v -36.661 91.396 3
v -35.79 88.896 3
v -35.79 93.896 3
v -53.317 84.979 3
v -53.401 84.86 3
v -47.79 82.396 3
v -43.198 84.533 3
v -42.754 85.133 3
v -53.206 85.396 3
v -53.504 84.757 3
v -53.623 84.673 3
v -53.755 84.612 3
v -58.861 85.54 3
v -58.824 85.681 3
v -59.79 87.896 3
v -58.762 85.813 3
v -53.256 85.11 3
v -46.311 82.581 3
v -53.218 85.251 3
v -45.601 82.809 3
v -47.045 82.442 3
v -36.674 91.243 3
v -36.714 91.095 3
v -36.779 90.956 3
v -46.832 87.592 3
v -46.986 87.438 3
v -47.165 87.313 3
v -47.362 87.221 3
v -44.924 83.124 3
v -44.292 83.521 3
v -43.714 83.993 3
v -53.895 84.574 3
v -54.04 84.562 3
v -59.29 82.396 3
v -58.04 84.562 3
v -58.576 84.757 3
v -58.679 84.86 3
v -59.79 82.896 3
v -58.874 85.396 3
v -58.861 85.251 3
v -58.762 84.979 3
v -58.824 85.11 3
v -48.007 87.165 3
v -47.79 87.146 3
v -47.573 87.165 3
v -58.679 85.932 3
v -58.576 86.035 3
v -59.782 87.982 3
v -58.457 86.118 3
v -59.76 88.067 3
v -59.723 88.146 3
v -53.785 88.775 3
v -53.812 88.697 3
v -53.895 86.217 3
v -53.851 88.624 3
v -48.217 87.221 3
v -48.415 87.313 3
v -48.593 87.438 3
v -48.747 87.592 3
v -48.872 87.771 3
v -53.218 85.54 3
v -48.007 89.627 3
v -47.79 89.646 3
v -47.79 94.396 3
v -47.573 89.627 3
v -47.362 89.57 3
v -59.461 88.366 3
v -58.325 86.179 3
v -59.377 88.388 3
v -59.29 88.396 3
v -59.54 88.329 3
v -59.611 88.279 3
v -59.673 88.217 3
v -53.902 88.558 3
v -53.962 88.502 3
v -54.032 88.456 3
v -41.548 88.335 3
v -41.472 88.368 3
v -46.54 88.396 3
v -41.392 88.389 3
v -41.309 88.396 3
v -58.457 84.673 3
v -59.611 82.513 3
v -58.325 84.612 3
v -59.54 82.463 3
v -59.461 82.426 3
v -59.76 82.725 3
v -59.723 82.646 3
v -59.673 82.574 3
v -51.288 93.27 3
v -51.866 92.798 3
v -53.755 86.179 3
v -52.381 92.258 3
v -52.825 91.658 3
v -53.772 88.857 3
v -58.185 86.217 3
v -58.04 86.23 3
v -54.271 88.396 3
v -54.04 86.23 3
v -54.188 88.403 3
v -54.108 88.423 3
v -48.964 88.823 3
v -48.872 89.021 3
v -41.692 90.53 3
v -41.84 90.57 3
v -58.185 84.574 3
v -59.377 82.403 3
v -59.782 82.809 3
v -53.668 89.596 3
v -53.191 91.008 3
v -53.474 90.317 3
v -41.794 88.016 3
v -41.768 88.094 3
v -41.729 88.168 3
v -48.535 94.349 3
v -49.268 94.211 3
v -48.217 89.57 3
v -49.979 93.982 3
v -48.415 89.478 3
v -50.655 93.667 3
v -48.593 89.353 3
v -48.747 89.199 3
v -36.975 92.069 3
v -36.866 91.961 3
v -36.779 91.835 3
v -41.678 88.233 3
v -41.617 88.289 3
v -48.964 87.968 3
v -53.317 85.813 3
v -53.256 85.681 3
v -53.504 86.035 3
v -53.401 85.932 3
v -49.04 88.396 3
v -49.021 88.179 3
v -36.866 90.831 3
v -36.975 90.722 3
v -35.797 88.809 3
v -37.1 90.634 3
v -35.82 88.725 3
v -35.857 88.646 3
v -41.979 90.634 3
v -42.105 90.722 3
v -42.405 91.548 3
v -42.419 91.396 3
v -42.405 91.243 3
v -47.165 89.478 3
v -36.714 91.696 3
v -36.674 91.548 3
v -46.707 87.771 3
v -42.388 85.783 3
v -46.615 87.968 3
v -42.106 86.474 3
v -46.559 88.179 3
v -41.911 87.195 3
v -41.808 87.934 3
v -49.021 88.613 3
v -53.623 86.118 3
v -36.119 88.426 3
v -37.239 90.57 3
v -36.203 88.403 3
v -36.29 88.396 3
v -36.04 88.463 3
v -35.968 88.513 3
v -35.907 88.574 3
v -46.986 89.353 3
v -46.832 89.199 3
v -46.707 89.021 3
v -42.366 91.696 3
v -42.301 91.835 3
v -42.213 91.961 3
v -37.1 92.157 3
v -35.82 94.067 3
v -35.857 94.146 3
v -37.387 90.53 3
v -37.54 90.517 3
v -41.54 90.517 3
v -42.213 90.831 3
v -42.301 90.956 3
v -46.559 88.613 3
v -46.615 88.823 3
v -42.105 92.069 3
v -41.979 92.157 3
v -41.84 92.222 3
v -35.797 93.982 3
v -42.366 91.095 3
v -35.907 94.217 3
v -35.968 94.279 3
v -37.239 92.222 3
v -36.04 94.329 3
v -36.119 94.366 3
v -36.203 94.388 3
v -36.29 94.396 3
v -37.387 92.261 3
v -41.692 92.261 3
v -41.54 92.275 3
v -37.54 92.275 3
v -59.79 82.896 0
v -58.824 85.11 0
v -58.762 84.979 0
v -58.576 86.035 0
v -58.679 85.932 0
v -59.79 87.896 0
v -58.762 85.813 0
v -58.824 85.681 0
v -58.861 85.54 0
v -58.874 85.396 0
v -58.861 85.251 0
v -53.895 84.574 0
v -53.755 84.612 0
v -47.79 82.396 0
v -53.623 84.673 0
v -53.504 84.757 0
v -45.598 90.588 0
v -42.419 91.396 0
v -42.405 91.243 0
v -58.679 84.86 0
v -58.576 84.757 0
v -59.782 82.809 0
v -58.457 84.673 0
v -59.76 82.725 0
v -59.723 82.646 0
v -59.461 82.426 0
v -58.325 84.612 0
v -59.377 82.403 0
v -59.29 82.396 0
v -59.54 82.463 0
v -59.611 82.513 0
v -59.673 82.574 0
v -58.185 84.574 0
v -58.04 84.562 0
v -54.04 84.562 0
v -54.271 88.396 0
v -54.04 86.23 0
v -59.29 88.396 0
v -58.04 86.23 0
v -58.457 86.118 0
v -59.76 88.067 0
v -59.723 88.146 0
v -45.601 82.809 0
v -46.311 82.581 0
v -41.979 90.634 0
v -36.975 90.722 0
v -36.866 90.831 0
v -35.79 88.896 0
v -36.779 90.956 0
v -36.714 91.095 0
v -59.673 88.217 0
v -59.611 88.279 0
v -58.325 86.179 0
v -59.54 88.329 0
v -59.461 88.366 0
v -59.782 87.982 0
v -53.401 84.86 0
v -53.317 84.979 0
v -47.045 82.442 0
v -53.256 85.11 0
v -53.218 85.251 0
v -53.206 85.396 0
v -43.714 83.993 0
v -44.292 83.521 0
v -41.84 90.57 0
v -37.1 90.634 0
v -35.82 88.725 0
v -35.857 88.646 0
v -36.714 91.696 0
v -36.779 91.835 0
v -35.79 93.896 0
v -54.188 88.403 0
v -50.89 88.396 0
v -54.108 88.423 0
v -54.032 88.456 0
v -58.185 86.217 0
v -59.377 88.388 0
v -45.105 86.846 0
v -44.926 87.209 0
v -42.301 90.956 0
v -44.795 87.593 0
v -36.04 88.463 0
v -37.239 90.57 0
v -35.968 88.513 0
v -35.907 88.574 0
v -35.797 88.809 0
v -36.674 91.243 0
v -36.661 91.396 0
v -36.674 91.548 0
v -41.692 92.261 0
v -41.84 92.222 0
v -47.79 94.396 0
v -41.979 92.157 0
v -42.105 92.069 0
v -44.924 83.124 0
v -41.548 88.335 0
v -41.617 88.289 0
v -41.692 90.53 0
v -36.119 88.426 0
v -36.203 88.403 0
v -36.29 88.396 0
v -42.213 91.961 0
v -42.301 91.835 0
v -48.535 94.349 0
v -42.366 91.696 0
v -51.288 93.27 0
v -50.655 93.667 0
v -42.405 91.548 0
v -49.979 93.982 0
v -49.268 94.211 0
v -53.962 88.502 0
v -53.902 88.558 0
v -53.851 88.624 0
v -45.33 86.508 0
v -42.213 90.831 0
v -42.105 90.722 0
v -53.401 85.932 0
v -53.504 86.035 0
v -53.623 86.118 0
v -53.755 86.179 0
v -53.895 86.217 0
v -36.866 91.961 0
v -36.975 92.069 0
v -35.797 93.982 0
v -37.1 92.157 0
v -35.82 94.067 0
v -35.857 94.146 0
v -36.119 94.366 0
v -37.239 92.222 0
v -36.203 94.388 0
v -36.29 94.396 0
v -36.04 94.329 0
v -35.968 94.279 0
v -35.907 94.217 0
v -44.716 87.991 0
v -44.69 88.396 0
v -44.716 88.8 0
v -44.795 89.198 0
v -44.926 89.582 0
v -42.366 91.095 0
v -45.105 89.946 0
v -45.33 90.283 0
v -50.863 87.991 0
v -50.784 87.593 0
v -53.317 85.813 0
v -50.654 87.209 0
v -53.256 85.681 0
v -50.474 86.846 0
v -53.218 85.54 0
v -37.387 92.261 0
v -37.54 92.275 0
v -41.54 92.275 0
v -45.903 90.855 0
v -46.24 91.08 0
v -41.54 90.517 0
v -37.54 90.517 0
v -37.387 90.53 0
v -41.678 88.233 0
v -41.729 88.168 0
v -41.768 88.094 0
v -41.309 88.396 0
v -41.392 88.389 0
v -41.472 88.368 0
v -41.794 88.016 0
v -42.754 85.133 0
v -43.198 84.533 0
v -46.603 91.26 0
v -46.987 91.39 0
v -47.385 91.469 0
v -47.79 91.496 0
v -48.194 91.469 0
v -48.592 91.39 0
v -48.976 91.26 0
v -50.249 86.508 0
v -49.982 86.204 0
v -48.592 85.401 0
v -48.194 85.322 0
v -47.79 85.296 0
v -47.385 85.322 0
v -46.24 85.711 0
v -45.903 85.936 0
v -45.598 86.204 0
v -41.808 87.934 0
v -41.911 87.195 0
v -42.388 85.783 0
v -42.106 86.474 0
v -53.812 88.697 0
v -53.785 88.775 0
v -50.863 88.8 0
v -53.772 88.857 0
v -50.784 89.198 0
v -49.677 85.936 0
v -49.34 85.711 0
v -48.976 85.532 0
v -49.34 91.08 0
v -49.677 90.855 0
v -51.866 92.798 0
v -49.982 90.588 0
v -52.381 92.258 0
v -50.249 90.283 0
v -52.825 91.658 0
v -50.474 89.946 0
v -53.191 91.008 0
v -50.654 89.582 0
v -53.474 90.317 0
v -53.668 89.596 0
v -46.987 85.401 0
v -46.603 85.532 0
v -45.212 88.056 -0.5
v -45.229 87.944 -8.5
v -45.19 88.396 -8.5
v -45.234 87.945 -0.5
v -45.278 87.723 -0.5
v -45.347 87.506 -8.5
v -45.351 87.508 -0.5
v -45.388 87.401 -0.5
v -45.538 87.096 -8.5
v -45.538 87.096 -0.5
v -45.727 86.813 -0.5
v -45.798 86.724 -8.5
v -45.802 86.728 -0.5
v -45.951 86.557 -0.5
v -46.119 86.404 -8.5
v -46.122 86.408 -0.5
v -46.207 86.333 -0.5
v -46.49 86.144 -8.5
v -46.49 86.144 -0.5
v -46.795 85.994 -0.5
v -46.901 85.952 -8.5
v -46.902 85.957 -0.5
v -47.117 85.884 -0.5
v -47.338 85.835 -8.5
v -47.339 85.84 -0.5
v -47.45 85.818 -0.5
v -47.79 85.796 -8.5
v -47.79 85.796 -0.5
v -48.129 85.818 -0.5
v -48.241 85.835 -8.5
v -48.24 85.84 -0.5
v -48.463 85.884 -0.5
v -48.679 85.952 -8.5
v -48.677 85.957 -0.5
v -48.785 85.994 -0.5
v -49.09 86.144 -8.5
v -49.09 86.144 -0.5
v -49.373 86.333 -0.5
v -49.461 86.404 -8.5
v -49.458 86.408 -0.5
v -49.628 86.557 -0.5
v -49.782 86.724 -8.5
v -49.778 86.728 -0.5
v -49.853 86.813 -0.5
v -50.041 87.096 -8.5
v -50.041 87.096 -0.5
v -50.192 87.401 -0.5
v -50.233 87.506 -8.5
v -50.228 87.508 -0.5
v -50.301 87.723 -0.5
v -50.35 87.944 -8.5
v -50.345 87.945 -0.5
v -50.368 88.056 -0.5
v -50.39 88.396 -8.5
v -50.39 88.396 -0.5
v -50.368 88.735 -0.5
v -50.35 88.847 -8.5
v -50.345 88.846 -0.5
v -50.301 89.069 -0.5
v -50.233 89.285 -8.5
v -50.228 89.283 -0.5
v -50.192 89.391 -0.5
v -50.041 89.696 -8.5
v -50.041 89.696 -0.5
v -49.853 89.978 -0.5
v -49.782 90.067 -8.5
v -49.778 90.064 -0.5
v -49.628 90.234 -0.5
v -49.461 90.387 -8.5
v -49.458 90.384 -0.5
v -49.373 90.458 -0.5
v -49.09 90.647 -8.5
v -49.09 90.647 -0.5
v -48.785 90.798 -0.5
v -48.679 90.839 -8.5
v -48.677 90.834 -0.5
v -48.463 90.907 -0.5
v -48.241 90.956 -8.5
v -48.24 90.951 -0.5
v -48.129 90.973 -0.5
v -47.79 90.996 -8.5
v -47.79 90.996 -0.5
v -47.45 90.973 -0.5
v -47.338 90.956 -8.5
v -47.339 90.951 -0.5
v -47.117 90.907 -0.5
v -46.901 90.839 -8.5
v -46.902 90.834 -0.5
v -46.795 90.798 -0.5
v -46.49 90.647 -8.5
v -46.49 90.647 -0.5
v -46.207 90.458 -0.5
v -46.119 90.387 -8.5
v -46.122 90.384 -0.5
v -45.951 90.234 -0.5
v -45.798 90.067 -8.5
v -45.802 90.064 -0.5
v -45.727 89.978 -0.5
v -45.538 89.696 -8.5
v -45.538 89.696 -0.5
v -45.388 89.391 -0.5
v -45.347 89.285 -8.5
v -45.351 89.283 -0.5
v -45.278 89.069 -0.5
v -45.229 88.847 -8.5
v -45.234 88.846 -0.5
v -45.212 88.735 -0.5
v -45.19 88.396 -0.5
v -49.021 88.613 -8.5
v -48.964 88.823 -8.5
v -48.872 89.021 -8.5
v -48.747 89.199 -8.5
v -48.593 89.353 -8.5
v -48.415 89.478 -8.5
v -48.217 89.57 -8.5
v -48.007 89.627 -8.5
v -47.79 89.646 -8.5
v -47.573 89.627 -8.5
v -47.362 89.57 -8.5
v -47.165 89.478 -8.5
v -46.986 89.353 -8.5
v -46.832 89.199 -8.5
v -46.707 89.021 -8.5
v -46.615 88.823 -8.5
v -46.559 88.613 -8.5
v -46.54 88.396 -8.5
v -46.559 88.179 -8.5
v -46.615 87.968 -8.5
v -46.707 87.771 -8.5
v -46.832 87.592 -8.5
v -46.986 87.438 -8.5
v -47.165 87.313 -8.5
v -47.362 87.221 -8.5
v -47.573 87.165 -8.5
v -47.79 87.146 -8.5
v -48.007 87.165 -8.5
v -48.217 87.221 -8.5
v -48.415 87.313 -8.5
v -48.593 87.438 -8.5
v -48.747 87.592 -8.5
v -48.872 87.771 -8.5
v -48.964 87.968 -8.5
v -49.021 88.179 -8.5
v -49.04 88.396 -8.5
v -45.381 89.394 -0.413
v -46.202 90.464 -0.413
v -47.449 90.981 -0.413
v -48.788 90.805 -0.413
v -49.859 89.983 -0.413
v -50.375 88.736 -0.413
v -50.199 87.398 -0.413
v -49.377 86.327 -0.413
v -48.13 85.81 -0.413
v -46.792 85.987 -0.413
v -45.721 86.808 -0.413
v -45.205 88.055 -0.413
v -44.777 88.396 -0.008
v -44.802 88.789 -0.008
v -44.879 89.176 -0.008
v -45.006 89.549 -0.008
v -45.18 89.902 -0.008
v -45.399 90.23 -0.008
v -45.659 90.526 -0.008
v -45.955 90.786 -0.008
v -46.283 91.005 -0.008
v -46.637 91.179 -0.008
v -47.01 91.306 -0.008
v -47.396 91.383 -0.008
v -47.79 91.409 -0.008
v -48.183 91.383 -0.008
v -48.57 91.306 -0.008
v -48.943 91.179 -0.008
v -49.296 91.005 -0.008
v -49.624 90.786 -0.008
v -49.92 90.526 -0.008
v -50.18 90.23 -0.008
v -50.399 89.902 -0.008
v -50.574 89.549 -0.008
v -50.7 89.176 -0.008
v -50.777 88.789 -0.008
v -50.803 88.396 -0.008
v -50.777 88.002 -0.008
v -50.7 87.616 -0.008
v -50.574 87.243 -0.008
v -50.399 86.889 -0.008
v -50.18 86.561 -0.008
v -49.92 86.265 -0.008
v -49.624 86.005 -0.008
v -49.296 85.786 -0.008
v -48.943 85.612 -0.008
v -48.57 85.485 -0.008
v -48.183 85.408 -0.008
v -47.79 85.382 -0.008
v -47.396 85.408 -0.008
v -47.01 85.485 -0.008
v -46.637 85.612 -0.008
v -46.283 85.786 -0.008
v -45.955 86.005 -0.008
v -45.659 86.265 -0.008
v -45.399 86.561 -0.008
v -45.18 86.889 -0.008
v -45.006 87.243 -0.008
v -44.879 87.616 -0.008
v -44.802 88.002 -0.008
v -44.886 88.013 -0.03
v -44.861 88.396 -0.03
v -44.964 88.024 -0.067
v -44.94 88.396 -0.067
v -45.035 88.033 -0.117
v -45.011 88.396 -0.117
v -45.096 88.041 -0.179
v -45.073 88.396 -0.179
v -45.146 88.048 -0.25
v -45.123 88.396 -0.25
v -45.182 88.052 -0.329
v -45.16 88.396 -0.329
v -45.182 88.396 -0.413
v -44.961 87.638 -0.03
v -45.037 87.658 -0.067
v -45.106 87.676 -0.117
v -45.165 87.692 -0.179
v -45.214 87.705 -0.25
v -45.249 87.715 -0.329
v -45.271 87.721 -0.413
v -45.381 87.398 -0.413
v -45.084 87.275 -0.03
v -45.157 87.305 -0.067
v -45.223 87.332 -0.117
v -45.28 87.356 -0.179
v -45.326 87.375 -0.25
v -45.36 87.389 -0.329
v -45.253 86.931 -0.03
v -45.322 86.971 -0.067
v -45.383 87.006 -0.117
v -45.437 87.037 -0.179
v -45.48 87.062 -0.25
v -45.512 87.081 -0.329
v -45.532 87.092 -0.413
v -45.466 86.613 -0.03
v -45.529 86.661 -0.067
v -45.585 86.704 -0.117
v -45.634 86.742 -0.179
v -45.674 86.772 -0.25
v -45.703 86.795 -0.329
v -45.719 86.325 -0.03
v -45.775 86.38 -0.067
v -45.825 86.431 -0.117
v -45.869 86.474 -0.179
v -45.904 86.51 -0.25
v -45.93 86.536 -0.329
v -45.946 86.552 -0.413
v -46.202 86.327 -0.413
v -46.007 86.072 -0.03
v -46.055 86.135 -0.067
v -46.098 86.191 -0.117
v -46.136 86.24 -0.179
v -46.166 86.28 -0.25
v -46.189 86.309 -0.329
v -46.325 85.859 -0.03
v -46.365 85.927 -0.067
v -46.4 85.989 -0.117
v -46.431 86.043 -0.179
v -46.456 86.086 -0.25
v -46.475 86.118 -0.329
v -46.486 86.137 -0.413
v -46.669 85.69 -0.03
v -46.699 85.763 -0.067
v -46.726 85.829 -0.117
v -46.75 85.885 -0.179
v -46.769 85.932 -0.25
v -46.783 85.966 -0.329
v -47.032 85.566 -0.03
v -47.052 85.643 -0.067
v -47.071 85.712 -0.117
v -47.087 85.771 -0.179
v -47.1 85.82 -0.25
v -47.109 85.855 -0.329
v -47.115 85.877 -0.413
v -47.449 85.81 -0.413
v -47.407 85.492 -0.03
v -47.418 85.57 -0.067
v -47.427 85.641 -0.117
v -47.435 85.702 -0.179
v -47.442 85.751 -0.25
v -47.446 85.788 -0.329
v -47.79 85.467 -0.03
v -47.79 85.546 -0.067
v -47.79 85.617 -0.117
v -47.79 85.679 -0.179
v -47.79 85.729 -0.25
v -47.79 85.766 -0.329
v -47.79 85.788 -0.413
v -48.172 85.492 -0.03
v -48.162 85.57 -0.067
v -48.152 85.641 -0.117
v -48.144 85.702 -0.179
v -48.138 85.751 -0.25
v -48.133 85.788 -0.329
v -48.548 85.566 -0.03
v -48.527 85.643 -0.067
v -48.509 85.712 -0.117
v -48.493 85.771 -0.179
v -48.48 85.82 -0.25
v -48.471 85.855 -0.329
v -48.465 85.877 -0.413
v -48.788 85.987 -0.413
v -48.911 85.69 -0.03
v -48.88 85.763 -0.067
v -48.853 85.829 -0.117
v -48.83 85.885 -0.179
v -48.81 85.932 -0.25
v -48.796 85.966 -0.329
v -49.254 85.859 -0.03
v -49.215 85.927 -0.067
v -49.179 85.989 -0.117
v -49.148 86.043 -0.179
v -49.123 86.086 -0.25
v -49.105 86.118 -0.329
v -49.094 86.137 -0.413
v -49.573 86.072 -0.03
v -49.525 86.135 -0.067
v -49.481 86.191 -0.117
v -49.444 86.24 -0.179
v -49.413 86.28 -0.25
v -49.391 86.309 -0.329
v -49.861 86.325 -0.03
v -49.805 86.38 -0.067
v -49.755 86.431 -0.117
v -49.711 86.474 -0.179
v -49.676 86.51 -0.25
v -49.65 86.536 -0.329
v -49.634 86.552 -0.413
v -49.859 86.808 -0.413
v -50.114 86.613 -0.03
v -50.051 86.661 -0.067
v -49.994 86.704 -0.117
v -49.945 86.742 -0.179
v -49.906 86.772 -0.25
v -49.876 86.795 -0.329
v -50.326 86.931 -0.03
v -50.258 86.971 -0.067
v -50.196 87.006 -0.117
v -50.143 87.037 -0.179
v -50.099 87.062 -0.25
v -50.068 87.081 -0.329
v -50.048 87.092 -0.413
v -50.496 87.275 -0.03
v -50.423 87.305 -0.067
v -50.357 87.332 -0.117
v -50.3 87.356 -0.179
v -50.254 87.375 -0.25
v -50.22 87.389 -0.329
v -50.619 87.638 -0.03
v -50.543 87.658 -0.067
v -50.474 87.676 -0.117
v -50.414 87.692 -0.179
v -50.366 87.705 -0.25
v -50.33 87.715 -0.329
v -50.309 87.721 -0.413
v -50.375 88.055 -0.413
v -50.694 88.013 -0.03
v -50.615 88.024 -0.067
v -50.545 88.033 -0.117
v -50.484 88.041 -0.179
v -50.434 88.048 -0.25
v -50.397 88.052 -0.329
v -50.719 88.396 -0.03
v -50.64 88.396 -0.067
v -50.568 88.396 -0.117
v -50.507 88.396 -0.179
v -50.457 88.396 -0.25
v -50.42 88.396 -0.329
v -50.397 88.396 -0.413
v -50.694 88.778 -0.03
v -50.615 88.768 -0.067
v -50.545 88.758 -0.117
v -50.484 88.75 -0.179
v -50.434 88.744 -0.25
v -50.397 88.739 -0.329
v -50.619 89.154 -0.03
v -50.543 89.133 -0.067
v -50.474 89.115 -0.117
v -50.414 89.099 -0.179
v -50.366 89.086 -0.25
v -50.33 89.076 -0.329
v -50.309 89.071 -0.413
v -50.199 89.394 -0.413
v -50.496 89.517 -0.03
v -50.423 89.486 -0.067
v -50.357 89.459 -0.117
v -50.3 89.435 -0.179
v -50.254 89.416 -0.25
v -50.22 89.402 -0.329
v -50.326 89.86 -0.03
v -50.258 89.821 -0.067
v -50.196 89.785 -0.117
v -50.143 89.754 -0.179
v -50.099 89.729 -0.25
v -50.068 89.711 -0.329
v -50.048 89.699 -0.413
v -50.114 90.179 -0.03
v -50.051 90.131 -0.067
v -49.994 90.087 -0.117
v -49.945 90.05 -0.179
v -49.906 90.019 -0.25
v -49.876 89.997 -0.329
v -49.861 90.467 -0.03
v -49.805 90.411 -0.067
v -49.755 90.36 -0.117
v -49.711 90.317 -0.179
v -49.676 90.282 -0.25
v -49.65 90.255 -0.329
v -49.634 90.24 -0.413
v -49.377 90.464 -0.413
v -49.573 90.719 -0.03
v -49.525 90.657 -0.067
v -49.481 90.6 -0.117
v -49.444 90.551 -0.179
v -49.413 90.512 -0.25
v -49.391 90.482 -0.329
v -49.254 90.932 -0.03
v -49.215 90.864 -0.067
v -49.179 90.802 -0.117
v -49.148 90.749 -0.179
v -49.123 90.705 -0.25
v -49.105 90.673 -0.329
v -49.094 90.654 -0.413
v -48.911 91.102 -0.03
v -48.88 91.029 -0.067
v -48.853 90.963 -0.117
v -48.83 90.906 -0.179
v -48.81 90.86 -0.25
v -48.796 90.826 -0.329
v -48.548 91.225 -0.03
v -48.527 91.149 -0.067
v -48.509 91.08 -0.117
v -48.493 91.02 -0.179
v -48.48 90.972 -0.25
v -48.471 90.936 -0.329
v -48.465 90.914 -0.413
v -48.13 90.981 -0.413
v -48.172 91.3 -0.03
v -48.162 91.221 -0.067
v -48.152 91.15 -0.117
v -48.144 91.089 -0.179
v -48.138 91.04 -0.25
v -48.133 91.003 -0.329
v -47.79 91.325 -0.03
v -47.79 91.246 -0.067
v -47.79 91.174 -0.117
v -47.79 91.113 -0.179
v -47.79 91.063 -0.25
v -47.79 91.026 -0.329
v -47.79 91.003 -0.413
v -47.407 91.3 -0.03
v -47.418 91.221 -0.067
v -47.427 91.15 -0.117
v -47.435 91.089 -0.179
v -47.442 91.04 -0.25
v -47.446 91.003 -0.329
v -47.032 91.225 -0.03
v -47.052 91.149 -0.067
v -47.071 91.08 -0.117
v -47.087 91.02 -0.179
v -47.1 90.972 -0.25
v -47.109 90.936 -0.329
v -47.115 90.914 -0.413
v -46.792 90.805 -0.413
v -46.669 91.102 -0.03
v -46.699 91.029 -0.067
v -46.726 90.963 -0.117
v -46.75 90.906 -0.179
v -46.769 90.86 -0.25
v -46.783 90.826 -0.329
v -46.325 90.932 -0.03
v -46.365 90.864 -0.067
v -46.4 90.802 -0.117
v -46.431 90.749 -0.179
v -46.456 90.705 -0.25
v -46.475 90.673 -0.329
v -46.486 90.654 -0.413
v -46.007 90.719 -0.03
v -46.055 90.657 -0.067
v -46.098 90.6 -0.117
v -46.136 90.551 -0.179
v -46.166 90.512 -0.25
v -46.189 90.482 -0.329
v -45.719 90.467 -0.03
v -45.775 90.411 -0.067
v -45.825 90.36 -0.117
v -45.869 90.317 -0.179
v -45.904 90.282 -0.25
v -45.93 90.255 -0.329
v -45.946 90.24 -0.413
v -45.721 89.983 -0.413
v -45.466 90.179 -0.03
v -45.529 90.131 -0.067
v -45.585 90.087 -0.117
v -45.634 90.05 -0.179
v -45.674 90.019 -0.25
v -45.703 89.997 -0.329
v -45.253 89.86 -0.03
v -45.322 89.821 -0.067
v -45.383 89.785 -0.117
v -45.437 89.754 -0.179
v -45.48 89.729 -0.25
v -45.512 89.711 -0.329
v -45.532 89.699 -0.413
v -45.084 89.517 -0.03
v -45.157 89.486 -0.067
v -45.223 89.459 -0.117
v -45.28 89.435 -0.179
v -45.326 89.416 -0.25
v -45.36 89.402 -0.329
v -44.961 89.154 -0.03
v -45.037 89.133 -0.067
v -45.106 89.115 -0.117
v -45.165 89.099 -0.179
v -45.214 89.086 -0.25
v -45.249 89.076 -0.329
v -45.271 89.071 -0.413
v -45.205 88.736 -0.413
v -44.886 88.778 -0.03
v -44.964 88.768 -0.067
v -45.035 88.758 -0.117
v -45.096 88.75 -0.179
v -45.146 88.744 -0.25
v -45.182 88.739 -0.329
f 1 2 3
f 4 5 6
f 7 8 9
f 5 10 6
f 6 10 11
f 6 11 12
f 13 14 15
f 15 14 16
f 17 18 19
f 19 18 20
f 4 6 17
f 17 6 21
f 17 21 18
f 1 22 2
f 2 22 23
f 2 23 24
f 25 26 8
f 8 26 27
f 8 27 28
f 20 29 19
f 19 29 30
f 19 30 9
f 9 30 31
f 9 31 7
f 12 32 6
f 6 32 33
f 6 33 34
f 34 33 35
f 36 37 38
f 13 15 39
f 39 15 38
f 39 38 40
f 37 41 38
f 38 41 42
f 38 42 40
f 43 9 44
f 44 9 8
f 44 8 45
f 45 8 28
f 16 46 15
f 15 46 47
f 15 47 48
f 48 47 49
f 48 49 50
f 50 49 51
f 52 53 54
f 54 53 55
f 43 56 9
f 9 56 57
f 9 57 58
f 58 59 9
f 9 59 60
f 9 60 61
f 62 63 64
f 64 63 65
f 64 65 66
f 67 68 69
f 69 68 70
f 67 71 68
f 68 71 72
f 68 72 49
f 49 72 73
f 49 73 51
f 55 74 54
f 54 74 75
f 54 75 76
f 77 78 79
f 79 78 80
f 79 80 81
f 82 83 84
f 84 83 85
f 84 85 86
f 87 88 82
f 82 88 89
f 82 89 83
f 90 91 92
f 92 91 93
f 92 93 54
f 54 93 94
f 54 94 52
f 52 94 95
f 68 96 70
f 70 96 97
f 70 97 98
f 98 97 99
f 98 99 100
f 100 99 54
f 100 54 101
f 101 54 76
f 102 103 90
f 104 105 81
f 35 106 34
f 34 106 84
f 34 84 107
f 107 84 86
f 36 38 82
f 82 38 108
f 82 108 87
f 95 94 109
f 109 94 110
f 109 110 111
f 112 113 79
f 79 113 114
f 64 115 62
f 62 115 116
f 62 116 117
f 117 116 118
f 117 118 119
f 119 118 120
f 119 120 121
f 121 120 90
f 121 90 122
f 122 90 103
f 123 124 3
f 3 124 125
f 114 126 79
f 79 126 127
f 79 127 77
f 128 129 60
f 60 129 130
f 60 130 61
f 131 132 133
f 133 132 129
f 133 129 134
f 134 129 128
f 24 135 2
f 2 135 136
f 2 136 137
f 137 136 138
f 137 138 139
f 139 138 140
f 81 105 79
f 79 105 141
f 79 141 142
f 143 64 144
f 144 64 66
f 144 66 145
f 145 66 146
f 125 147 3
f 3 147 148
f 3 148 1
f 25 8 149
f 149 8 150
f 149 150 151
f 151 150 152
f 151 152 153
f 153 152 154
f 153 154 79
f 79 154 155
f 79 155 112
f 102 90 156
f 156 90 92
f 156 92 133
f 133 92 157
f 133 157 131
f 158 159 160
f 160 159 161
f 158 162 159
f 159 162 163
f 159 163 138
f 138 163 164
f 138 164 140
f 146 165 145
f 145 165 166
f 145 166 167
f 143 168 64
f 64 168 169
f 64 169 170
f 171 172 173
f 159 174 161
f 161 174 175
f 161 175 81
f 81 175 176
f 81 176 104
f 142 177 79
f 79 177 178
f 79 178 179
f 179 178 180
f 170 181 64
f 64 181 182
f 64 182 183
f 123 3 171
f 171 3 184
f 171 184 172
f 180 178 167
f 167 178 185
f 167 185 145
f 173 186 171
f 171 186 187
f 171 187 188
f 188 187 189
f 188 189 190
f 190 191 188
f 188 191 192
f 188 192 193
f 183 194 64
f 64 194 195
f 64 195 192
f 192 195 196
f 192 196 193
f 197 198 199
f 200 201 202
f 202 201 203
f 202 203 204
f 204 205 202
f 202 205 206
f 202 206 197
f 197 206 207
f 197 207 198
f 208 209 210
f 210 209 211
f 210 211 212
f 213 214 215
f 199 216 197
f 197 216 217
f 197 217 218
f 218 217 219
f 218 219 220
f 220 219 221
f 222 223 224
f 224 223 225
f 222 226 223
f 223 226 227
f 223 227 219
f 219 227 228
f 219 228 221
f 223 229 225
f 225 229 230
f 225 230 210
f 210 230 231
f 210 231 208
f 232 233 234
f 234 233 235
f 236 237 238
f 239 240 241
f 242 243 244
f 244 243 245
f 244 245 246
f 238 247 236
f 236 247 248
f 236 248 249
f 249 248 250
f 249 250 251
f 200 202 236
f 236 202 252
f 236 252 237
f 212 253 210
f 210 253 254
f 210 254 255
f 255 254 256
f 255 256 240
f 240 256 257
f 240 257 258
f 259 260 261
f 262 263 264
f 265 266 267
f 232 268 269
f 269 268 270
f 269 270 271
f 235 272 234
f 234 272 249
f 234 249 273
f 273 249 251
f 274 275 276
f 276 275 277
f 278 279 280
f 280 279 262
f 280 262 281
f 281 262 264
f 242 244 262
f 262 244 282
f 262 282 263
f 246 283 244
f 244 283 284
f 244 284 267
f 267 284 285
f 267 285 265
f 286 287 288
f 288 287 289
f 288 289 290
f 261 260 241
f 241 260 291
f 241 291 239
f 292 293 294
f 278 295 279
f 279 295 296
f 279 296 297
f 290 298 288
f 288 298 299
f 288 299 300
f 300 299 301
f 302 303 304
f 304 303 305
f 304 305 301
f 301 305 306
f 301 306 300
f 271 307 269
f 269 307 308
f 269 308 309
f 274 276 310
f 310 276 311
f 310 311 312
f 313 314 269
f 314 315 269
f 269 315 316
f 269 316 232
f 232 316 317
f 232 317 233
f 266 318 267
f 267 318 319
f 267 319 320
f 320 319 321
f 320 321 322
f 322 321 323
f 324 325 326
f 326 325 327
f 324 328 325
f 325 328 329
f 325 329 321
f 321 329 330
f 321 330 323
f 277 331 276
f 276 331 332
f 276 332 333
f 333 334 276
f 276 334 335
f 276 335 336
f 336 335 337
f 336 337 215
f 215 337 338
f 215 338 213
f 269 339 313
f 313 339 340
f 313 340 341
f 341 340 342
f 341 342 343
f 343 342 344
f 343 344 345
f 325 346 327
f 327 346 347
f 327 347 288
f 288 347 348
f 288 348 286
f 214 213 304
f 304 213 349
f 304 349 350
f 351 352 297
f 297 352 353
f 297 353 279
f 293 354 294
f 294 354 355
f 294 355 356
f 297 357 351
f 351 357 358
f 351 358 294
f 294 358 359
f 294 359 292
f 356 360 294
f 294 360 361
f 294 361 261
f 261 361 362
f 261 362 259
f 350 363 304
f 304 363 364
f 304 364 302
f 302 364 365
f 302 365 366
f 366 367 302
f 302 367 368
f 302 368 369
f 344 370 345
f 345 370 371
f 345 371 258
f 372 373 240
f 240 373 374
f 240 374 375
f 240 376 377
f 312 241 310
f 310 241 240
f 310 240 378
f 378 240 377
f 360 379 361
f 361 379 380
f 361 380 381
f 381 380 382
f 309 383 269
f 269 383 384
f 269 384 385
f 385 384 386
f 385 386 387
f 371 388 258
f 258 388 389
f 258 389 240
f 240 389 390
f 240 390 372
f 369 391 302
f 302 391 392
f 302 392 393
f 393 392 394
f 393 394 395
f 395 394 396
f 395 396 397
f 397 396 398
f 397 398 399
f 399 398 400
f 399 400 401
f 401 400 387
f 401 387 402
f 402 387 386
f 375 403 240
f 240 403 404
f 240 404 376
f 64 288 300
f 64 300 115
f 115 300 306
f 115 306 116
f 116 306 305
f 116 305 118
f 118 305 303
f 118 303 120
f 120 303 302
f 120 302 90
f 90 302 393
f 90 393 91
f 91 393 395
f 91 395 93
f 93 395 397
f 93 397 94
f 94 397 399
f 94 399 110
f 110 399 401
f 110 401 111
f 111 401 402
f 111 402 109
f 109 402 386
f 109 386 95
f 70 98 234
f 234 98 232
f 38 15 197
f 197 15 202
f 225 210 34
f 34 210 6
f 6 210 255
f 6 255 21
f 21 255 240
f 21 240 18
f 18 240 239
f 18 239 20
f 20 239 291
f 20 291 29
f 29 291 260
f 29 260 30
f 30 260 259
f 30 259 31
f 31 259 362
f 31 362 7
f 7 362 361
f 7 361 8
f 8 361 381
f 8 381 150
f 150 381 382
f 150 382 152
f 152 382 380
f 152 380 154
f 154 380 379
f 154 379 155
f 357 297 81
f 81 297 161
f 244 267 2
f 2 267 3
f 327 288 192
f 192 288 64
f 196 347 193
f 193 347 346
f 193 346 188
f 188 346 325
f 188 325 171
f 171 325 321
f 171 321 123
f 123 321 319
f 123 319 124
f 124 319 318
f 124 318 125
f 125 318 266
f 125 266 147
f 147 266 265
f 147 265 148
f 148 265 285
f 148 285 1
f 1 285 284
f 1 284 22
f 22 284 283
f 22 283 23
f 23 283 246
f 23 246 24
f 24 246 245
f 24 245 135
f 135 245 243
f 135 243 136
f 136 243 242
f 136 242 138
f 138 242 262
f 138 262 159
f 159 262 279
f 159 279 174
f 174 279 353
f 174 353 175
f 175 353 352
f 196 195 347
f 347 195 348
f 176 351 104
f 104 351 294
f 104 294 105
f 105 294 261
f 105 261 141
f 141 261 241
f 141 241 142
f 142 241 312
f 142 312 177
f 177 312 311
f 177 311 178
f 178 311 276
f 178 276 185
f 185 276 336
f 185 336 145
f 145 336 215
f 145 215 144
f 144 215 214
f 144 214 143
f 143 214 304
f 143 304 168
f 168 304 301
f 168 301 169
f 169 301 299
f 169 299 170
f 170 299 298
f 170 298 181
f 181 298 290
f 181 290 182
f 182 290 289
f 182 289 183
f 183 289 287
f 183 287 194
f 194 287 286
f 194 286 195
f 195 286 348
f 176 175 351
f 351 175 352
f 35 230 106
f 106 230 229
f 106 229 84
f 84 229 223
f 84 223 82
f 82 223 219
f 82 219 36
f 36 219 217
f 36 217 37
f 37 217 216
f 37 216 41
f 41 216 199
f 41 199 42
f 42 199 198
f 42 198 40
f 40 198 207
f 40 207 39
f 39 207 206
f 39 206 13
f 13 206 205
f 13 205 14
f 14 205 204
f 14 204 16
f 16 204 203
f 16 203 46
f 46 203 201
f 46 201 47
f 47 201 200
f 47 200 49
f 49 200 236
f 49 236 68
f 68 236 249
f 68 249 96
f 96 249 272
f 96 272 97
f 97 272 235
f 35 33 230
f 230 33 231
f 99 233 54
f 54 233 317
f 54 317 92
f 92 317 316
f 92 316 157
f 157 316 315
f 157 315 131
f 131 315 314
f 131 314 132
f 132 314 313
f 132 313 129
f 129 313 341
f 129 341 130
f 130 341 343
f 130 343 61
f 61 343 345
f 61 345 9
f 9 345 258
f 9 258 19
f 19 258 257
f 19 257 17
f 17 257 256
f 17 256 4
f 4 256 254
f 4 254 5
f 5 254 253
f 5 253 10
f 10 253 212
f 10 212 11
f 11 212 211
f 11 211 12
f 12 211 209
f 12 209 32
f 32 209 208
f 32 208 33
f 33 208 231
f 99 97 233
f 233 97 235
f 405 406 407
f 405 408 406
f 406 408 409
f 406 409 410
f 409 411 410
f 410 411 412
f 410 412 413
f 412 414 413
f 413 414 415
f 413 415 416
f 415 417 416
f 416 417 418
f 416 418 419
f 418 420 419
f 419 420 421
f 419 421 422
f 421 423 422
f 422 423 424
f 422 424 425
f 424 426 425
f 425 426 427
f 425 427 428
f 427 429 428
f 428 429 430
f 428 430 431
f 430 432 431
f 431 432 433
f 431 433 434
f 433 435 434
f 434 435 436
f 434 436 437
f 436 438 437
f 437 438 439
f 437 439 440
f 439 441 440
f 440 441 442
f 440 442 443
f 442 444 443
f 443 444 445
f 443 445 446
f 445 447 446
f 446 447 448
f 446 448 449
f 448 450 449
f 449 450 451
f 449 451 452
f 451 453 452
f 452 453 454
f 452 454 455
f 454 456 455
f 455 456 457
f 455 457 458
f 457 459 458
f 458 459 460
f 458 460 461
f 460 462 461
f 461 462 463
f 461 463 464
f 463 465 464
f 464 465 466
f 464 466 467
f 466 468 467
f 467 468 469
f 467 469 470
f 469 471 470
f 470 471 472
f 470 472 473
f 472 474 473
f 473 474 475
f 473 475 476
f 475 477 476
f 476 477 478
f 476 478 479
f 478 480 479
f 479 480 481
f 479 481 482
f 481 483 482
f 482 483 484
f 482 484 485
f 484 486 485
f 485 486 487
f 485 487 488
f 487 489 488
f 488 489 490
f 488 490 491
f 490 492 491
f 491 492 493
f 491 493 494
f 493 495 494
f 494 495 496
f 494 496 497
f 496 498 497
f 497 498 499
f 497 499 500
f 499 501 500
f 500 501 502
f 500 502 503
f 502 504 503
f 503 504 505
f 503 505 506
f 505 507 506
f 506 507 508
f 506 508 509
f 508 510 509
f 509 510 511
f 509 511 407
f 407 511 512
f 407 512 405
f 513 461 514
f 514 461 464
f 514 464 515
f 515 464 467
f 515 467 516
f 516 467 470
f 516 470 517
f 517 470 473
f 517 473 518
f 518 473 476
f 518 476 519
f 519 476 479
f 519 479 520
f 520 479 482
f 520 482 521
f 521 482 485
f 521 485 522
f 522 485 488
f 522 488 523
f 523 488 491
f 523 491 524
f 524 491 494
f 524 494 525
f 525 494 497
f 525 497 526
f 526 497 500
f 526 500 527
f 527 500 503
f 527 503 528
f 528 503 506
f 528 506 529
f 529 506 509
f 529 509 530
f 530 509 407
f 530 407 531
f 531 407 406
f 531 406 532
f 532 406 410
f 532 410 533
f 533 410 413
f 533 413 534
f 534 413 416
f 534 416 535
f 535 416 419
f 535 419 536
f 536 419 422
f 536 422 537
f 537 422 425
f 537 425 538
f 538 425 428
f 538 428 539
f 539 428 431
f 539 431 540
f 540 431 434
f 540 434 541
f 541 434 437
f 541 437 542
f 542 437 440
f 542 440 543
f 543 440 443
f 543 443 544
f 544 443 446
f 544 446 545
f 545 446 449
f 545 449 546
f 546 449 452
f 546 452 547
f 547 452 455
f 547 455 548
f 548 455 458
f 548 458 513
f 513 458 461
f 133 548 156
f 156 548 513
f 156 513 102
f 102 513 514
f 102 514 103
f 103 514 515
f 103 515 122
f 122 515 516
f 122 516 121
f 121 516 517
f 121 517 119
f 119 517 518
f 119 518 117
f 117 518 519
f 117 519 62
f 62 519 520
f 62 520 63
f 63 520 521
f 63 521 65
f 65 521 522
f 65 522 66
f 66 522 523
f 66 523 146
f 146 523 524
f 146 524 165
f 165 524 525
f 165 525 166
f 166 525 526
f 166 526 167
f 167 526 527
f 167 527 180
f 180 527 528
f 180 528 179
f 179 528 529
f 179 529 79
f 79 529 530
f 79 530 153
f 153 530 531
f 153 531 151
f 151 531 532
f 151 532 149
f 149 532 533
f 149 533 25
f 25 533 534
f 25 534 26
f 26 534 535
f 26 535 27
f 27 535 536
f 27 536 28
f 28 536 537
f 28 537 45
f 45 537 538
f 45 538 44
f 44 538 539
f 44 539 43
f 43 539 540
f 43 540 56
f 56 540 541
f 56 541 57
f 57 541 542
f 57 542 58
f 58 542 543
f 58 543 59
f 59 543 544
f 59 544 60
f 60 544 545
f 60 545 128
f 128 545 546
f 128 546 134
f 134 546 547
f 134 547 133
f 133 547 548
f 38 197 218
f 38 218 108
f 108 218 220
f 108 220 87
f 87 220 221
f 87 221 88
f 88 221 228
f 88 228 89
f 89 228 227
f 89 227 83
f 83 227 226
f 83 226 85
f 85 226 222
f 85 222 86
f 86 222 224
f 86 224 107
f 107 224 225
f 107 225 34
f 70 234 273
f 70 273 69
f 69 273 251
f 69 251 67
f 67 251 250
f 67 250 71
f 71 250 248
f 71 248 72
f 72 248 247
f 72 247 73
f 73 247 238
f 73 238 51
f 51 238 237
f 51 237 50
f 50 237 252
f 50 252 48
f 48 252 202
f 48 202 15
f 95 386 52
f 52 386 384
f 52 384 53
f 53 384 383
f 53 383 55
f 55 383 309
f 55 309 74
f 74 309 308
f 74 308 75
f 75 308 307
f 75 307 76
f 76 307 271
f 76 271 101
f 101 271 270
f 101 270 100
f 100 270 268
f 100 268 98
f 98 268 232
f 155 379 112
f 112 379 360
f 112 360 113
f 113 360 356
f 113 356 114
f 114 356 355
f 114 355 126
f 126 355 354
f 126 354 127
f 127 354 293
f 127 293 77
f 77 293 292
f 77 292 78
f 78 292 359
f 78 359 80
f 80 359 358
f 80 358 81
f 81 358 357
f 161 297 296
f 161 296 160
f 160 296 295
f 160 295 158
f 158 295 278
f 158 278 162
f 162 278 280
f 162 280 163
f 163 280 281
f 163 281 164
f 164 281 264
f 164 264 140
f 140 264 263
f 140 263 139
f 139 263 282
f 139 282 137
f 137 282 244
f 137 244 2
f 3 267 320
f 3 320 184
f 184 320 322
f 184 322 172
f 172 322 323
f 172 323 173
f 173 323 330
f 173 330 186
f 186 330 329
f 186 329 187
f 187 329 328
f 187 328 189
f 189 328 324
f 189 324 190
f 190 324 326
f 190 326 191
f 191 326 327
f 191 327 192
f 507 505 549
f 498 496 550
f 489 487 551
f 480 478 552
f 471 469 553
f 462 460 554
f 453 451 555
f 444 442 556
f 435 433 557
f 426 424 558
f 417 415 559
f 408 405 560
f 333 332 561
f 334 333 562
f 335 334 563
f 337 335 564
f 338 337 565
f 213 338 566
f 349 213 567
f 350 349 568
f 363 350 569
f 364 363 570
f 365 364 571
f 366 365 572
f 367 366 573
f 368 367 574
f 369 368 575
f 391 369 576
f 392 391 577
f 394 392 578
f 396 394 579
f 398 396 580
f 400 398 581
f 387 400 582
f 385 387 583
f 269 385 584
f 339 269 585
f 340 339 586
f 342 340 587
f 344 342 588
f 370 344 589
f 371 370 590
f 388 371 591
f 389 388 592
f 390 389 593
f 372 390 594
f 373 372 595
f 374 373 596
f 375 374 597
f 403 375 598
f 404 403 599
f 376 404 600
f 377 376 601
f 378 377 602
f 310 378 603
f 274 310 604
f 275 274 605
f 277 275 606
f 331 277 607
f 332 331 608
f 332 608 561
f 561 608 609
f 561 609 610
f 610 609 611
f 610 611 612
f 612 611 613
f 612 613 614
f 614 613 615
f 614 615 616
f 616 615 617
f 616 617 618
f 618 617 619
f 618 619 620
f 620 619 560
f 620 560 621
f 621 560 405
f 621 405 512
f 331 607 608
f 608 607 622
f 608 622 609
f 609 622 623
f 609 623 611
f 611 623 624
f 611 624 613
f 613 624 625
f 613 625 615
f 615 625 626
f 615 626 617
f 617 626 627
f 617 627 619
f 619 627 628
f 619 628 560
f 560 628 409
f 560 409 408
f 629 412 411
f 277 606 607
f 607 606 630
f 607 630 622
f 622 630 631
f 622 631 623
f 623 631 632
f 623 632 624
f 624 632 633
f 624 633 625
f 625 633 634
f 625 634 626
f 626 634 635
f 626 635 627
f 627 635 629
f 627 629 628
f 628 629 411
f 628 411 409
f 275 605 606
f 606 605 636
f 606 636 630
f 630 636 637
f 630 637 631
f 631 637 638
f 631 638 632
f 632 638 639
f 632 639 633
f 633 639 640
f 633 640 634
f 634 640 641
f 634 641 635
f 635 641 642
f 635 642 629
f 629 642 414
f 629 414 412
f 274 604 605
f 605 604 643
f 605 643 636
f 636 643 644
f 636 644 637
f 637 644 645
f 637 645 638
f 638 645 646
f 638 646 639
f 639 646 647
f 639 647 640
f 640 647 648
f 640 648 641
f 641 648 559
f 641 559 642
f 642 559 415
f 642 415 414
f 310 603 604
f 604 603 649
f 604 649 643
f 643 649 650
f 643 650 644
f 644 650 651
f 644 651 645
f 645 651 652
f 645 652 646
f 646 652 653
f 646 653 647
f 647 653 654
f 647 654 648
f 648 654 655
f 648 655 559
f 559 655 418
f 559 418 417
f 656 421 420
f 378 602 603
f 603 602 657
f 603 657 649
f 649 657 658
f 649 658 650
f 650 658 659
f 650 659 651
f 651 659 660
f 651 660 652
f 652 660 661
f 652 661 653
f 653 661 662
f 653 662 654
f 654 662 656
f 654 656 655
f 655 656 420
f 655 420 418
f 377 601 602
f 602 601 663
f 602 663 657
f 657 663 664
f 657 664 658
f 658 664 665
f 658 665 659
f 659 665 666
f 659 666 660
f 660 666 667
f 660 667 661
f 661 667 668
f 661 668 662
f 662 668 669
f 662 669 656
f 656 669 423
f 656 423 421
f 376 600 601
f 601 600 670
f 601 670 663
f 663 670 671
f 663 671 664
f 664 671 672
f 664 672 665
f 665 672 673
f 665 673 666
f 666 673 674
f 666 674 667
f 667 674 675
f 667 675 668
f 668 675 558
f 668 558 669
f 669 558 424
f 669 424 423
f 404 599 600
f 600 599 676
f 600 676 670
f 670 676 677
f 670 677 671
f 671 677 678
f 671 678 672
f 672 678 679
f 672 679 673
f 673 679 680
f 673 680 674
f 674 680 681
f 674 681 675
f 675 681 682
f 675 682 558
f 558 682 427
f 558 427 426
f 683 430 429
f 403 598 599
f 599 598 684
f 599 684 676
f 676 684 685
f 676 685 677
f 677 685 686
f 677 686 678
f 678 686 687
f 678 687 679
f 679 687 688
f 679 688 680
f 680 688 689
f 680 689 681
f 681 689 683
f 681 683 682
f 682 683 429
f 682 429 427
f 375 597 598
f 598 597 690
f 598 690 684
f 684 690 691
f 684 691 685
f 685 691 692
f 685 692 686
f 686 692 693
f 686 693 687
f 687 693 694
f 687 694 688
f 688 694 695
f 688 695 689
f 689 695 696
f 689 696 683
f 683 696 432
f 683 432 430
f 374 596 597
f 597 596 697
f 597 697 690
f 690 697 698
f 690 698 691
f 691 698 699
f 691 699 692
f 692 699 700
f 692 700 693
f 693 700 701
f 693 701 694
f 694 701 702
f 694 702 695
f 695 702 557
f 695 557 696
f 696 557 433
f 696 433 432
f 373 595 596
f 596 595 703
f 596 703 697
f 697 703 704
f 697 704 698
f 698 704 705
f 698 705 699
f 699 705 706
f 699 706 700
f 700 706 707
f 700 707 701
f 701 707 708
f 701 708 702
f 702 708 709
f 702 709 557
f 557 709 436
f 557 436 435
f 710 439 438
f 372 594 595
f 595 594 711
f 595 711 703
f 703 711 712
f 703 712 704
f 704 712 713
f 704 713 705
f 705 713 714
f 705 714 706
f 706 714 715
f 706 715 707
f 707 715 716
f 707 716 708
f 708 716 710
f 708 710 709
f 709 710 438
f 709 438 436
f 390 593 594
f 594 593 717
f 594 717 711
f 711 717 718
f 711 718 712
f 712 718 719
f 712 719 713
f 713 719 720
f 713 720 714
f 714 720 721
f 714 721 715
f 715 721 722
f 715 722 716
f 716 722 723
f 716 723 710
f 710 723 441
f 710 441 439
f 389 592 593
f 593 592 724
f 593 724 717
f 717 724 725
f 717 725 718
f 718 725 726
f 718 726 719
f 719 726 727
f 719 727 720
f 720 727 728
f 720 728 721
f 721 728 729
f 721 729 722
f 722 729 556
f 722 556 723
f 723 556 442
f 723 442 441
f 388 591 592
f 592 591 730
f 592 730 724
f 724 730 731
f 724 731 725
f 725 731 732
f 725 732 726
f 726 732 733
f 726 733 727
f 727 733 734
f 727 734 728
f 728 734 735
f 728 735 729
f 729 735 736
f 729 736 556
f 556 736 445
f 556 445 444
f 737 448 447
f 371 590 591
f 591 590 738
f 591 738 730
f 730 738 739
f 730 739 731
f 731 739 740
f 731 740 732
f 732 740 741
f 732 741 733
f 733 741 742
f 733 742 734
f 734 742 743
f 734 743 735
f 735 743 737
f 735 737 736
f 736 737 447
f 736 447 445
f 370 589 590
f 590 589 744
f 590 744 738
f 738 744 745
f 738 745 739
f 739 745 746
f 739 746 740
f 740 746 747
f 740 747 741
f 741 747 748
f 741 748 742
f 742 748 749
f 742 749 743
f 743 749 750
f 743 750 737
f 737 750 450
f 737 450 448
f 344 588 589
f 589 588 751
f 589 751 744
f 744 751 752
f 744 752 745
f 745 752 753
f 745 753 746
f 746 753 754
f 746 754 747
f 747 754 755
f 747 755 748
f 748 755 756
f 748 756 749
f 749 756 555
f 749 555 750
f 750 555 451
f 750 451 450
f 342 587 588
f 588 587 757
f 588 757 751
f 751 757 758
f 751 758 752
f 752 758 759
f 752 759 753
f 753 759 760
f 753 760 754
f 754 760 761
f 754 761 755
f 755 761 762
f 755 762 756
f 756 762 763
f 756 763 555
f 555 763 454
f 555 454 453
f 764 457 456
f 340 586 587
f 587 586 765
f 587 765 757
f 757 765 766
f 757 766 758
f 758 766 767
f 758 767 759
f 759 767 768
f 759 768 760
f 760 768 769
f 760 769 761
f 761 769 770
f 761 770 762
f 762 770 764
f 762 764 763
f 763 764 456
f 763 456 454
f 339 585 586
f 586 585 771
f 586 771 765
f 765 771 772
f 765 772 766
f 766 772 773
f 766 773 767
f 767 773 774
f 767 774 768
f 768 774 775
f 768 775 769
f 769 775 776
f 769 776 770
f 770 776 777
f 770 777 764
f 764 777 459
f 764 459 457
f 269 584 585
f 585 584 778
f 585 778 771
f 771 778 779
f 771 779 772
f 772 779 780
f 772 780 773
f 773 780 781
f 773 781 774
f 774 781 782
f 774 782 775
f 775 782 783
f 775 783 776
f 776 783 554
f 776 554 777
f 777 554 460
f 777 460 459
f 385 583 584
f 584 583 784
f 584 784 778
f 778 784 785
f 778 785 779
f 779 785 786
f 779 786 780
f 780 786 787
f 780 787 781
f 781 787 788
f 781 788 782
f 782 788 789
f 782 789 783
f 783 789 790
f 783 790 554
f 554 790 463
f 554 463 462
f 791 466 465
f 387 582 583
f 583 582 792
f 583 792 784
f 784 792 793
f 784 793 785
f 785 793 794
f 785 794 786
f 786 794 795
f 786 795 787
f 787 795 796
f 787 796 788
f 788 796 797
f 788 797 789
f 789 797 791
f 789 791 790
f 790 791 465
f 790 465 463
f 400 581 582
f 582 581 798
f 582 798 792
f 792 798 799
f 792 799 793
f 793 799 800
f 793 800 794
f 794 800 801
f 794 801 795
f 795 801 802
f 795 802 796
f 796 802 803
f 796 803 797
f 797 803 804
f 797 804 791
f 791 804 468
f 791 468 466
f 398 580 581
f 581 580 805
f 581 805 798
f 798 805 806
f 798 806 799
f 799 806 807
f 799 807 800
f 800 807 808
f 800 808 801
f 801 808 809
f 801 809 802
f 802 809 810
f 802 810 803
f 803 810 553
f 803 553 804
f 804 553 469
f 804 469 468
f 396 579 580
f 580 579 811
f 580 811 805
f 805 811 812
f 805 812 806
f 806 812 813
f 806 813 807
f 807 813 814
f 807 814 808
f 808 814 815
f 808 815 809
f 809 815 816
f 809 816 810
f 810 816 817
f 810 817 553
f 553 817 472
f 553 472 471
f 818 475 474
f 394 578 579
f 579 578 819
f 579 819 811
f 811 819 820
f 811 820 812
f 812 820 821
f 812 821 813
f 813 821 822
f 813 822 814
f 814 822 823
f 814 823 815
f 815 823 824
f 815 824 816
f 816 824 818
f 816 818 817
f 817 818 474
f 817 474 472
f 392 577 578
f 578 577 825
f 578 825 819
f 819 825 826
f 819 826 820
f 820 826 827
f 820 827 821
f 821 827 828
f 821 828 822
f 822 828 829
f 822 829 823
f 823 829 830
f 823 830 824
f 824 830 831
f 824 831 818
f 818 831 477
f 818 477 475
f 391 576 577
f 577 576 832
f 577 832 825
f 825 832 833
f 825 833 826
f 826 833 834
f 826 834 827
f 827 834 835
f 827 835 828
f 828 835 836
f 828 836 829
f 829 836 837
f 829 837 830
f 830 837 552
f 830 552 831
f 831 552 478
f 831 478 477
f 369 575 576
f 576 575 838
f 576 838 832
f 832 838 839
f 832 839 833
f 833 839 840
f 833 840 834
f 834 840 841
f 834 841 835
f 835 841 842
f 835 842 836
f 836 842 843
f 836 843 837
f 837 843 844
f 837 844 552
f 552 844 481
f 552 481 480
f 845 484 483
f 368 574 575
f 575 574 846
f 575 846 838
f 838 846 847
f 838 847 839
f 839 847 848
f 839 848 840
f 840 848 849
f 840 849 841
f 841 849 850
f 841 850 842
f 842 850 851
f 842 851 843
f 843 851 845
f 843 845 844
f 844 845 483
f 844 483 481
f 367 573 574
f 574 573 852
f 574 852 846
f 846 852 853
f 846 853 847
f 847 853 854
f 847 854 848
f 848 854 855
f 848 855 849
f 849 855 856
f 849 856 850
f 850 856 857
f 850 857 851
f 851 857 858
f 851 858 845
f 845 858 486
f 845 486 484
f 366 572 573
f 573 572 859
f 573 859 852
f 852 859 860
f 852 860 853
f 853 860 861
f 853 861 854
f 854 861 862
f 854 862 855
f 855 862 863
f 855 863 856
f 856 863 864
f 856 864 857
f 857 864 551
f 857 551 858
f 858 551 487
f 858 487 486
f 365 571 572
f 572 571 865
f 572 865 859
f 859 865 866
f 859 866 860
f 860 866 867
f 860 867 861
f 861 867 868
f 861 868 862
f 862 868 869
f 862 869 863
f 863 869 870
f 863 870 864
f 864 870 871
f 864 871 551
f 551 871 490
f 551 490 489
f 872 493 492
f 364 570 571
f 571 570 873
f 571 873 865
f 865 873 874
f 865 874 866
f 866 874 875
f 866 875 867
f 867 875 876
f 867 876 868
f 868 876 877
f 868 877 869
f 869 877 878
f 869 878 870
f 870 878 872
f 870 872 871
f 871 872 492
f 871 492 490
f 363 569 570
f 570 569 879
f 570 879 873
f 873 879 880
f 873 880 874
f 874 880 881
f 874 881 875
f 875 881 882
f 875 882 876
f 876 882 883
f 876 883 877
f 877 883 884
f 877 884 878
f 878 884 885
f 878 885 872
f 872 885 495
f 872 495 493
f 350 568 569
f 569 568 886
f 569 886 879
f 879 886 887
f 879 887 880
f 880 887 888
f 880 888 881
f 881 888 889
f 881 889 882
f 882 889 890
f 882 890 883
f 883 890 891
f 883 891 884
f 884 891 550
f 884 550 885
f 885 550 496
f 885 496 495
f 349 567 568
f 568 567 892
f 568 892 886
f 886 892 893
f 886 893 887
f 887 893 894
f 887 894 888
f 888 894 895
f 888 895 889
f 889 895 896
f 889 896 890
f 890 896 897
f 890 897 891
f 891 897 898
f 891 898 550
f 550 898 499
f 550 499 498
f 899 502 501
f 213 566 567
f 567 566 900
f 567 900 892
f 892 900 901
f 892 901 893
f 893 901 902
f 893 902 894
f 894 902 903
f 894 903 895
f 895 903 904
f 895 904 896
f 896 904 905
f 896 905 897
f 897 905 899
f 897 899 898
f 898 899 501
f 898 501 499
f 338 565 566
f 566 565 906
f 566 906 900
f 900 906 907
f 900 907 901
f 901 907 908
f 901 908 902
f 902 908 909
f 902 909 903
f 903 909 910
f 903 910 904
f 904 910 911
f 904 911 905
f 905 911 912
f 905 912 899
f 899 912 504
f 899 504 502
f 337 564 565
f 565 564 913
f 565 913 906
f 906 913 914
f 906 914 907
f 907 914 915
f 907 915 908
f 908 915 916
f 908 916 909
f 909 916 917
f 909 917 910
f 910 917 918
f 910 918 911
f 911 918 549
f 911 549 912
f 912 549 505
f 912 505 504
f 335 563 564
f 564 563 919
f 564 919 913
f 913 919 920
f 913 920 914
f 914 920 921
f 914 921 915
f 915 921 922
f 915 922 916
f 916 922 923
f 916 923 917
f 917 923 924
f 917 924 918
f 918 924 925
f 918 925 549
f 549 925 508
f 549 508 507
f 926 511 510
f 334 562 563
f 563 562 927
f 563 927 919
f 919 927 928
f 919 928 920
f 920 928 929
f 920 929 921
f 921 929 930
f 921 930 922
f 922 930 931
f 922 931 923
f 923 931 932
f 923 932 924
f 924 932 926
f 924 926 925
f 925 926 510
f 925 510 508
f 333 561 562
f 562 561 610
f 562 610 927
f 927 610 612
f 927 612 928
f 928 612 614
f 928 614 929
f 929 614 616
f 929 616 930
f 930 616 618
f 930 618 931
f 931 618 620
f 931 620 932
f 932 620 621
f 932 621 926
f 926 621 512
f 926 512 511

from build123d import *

# Parameters (mm, degrees)
BOSS_EXTRUDE1_DEPTH = 3
SKETCH2_R           = 2.6
BOSS_EXTRUDE2_DEPTH = 8.5
M3_TAPPED_HOLE1_D   = 2.5
FILLET1_R           = 0.5


with BuildPart() as part:
    # Sketch1 → Boss-Extrude1 (new body)
    with BuildSketch(Plane.XY):
        with BuildLine():
            Line((-47.789798407, 94.395653496), (-35.789798407, 94.395653496))
            Line((-35.789798407, 94.395653496), (-35.789798407, 88.395653496))
            Line((-35.789798407, 88.395653496), (-41.789798407, 88.395653496))
            ThreePointArc((-41.789798407, 88.395653496), (-43.54715772, 84.153012809), (-47.789798407, 82.395653496))
            Line((-47.789798407, 82.395653496), (-59.789798407, 82.395653496))
            Line((-59.789798407, 82.395653496), (-59.789798407, 88.395653496))
            Line((-59.789798407, 88.395653496), (-53.789798407, 88.395653496))
            ThreePointArc((-53.789798407, 88.395653496), (-52.032439094, 92.638294183), (-47.789798407, 94.395653496))
        make_face()
        with BuildLine():
            Line((-37.539798407, 90.516657199), (-41.539798407, 90.516657199))
            ThreePointArc((-41.539798407, 90.516657199), (-42.418794704, 91.395653496), (-41.539798407, 92.274649793))
            Line((-41.539798407, 92.274649793), (-37.539798407, 92.274649793))
            ThreePointArc((-37.539798407, 92.274649793), (-36.66080211, 91.395653496), (-37.539798407, 90.516657199))
        make_face(mode=Mode.SUBTRACT)
        with BuildLine():
            Line((-58.039798407, 86.229692735), (-54.039798407, 86.229692735))
            ThreePointArc((-54.039798407, 86.229692735), (-53.205759169, 85.395653496), (-54.039798407, 84.561614258))
            Line((-54.039798407, 84.561614258), (-58.039798407, 84.561614258))
            ThreePointArc((-58.039798407, 84.561614258), (-58.873837646, 85.395653496), (-58.039798407, 86.229692735))
        make_face(mode=Mode.SUBTRACT)
    extrude(amount=BOSS_EXTRUDE1_DEPTH)

    # Sketch2 → Boss-Extrude2 (add)
    with BuildSketch(Plane(origin=(0, 0, 0), x_dir=(-1, 0, 0), z_dir=(0, 0, -1))):
        with Locations(Location((47.789798407, 88.395653496, 0), (0, 0, 180))):
            Circle(SKETCH2_R)
    extrude(amount=BOSS_EXTRUDE2_DEPTH)

    # M3 Tapped Hole1 (through all)
    with Locations(Plane(origin=(0, 0, -8.5), x_dir=(-1, 0, 0), z_dir=(0, 0, -1))):
        with Locations((47.789798407, 88.395653496)):
            Hole(M3_TAPPED_HOLE1_D / 2)

    # Fillet1
    fillet1_edges = [part.edges().sort_by_distance(p)[0] for p in [
        (-35.789798407, 94.395653496, 1.5),
        (-35.789798407, 88.395653496, 1.5),
        (-41.789798407, 88.395653496, 1.5),
        (-59.789798407, 82.395653496, 1.5),
        (-59.789798407, 88.395653496, 1.5),
        (-53.789798407, 88.395653496, 1.5),
        (-50.389798407, 88.395653496, 0),
    ]]
    fillet(fillet1_edges, radius=FILLET1_R)


solid = part.part
